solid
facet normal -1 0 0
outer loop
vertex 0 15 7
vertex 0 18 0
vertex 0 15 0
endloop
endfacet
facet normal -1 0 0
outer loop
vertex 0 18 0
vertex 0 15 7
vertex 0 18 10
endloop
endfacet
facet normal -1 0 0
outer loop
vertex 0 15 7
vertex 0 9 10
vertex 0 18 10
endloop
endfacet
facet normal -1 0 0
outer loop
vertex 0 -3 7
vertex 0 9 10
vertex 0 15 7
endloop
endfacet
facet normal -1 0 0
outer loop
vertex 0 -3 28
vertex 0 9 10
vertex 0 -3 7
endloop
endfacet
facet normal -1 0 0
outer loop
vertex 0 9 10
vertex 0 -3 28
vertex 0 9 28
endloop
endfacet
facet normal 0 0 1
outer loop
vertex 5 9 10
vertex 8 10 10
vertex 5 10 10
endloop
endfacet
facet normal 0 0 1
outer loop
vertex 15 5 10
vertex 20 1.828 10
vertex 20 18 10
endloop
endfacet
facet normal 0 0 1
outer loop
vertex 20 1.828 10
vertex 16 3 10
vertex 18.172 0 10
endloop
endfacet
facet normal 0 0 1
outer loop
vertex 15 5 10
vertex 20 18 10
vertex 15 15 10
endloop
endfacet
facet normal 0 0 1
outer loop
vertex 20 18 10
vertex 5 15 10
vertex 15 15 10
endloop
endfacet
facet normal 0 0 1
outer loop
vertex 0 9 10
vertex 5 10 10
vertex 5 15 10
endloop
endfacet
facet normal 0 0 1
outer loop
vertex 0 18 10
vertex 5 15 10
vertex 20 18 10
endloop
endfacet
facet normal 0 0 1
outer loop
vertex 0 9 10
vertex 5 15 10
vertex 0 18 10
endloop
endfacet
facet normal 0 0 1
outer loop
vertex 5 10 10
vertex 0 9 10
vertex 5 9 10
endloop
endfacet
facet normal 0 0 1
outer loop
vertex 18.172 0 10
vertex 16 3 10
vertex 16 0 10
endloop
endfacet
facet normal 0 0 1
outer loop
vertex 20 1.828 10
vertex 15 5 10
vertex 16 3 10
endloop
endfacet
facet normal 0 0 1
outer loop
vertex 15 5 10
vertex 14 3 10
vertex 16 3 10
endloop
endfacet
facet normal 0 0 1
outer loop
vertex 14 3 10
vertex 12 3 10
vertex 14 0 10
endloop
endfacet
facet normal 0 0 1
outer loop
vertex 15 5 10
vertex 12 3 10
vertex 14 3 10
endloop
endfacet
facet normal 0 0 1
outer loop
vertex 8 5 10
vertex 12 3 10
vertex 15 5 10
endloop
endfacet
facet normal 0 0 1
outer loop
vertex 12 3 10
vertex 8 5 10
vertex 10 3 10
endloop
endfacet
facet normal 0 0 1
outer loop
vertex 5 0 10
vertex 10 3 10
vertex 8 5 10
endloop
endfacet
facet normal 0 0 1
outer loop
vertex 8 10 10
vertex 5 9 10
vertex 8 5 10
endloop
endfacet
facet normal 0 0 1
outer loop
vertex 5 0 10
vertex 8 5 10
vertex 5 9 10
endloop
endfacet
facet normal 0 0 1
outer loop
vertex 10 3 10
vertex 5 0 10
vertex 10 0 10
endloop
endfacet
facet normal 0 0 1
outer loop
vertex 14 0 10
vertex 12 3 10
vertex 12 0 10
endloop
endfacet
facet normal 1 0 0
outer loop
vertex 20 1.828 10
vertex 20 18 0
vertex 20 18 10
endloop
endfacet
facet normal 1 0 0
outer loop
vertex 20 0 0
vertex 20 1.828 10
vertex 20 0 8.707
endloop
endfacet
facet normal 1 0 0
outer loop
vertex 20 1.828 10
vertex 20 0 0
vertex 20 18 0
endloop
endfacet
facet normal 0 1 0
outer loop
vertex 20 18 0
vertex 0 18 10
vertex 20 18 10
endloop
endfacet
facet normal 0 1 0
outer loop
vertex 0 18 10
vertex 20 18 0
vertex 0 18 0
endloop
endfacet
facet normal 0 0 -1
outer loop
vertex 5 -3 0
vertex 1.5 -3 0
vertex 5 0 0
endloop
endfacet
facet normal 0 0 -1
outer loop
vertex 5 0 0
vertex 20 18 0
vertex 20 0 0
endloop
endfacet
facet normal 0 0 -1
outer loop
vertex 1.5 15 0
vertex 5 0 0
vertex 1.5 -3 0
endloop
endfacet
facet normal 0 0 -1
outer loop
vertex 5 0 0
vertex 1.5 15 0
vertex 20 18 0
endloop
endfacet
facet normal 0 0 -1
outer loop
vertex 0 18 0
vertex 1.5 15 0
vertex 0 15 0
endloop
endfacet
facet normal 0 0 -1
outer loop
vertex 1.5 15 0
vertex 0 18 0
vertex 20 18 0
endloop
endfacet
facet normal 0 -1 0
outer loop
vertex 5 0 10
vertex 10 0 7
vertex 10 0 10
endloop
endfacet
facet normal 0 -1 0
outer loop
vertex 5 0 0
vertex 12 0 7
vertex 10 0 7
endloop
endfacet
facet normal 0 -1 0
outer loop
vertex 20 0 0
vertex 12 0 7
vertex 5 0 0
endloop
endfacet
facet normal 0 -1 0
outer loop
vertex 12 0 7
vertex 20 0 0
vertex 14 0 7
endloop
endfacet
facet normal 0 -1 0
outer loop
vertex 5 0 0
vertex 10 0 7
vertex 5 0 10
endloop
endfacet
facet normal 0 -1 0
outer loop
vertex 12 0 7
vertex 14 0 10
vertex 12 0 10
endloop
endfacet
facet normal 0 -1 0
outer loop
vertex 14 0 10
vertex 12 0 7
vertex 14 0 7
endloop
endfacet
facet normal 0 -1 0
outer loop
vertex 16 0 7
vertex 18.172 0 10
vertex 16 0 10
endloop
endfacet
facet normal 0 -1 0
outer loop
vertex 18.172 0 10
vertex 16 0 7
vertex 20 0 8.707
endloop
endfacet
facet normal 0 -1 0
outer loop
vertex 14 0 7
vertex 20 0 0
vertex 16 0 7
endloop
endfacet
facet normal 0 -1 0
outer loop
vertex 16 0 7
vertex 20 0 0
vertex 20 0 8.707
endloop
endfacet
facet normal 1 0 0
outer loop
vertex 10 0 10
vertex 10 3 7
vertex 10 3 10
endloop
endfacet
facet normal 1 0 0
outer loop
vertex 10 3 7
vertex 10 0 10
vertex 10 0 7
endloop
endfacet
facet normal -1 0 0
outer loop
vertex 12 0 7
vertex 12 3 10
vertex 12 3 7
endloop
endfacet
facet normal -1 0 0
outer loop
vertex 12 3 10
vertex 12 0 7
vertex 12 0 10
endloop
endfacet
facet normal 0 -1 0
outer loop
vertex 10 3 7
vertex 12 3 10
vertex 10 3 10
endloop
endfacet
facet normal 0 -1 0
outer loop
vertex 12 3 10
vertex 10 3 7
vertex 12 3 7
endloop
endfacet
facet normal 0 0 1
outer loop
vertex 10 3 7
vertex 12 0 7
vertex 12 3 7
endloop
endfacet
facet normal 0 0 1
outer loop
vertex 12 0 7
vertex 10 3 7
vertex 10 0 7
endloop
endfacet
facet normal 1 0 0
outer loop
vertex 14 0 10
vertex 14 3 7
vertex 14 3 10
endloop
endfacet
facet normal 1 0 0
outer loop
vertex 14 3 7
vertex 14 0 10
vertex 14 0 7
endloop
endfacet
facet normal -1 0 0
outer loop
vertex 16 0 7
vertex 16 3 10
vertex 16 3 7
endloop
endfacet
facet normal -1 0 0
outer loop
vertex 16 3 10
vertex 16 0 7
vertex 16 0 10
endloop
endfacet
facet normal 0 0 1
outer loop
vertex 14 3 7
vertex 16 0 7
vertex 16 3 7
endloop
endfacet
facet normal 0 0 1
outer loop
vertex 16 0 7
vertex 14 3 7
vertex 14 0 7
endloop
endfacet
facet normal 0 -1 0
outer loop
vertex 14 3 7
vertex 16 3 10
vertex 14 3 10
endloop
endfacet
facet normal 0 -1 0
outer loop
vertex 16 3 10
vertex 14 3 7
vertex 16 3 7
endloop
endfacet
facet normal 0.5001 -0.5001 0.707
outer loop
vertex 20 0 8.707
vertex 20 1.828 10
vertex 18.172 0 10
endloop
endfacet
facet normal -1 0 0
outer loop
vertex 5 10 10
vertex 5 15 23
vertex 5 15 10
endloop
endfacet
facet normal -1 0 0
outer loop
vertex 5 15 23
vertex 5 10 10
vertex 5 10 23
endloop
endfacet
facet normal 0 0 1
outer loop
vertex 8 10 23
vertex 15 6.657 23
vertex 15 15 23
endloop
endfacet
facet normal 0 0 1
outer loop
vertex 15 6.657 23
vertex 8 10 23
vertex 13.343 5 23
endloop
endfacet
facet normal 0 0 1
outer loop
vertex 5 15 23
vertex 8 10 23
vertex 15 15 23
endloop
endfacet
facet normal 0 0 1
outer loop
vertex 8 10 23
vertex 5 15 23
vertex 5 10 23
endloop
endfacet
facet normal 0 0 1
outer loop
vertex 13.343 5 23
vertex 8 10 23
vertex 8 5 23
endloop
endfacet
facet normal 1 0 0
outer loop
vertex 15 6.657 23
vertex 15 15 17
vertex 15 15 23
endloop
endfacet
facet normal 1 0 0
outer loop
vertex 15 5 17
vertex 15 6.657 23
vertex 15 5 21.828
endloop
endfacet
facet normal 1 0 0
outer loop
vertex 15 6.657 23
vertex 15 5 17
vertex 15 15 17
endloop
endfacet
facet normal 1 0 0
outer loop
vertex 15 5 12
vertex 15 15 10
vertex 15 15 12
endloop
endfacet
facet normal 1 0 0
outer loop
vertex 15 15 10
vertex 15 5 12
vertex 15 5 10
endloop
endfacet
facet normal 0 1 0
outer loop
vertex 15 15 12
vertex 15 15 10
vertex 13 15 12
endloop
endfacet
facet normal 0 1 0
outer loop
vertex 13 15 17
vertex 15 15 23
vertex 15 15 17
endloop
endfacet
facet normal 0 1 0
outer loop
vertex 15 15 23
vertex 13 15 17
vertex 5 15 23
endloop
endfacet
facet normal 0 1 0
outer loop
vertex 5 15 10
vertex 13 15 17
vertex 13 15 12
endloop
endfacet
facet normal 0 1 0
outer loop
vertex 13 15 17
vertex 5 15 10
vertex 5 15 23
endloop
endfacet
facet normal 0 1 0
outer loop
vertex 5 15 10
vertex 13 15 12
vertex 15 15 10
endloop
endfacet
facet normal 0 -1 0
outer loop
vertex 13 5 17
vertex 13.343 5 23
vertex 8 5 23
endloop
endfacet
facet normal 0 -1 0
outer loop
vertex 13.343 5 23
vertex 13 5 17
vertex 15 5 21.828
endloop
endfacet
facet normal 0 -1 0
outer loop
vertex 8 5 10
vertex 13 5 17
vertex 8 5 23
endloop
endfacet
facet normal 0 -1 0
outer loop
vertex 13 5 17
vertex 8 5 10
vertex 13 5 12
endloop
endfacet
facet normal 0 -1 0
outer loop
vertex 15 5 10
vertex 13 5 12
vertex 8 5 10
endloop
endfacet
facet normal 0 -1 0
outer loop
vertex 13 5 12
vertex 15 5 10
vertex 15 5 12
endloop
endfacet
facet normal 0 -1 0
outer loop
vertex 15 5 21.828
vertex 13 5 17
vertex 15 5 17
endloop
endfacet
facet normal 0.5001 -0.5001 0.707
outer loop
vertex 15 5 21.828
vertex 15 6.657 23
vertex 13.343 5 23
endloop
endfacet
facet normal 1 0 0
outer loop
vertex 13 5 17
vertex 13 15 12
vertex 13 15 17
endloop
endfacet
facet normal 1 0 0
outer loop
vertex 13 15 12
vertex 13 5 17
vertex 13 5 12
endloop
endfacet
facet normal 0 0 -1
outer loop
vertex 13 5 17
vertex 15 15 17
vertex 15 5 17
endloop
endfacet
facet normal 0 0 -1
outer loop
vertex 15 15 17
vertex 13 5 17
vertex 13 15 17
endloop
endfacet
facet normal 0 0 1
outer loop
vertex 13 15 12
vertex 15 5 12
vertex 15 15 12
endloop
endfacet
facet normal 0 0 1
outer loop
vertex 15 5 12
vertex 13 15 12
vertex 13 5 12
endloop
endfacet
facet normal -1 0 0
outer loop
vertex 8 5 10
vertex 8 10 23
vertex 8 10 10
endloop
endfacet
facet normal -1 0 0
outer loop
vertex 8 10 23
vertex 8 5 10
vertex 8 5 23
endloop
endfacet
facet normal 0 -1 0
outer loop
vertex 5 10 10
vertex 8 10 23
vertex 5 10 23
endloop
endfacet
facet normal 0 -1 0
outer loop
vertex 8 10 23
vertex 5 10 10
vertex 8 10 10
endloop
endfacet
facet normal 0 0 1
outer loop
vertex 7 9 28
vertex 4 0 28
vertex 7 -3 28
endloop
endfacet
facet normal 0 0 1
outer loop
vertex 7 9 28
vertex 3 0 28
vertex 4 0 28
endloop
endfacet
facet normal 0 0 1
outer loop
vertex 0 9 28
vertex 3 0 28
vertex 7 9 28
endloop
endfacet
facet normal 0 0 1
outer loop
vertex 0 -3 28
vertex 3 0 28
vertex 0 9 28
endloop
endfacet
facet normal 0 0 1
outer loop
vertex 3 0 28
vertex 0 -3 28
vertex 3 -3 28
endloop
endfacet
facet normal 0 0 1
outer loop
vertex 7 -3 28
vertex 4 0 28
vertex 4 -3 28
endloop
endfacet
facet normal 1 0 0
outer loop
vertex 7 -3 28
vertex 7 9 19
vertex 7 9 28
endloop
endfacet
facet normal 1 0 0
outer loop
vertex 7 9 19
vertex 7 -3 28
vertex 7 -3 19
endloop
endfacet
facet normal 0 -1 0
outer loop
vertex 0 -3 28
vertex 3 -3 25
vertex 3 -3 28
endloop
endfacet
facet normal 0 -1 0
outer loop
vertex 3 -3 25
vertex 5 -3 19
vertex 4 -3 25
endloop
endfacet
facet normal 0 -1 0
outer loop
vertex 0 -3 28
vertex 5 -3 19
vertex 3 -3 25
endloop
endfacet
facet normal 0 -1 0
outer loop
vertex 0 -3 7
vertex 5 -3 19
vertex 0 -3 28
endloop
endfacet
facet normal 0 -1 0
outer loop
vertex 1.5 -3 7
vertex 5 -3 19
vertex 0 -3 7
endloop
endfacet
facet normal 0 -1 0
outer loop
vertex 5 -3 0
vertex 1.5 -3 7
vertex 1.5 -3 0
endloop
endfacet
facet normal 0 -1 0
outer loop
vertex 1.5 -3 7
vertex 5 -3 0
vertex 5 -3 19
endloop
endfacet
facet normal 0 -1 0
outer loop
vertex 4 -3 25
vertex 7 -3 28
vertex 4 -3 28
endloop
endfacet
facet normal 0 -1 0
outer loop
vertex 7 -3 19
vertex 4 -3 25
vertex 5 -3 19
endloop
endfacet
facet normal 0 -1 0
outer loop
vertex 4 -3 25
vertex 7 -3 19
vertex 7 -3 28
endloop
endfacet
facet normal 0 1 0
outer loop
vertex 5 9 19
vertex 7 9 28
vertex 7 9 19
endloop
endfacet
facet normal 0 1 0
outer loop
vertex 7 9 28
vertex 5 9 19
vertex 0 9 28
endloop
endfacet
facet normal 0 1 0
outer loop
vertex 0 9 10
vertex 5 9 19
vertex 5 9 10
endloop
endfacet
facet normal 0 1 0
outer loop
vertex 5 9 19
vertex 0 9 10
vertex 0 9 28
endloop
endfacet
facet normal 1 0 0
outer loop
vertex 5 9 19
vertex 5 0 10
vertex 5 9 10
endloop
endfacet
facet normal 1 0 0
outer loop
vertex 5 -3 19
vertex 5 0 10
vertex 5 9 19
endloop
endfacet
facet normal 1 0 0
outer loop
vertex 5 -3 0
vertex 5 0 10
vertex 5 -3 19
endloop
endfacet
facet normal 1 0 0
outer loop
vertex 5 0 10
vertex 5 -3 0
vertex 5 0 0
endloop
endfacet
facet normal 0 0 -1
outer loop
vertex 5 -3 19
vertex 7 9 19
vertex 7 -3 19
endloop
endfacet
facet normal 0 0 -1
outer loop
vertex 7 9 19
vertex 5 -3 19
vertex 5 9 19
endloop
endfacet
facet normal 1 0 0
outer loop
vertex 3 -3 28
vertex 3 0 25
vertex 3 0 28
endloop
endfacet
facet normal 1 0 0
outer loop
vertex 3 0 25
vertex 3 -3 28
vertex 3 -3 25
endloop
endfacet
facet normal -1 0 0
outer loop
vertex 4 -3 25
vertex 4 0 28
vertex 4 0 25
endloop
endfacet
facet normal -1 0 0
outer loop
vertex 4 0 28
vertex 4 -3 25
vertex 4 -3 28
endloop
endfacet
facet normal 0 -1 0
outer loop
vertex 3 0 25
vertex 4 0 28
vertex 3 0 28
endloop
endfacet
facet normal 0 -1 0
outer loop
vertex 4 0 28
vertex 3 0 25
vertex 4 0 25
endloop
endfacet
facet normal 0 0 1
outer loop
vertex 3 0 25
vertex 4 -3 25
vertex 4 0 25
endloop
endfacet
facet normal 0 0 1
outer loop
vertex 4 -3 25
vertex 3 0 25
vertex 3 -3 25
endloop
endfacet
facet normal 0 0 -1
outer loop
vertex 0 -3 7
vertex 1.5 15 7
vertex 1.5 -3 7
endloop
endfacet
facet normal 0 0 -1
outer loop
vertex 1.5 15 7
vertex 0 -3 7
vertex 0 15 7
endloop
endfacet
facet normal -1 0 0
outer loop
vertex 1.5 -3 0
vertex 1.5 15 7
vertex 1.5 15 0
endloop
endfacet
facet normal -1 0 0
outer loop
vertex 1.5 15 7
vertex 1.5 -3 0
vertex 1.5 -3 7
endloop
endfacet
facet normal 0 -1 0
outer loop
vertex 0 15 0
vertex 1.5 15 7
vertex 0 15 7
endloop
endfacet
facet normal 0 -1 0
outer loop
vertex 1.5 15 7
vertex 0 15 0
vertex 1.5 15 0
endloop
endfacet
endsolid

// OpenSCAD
difference() {
	union() {

		difference() {
			cube([20,18,10]);

			translate([10,-1,7])
			cube([2,4,4]);
			translate([14,-1,7])
			cube([2,4,4]);

			translate([21,0,8])
			rotate(-45,[0,0,1])
			rotate(-45,[0,1,0])
			rotate(45,[1,0,0])
			cube([2,4,4]);

		}


		translate([5,5,9])
		difference() {
			cube([10,10,14]);

			translate([14,0,10])
			rotate(-45,[0,0,1])
			rotate(-45,[0,1,0])
			rotate(45,[1,0,0])
			cube([8,8,8]);

			translate([8,-1,3])
			cube([3,25,5]);

			translate([-1,-1,-1])
			cube([4,6,16]);
		}

		translate([0,-3,0])
		difference() {
			cube([7,12,28]);

			translate([5,-1,-1])
			cube([3,14,20]);

			translate([3,-1,25])
			cube([1,4,4]);
		}
	}
	
	translate([-1,-5,-1])
	cube([2.5,20,8]);
}
